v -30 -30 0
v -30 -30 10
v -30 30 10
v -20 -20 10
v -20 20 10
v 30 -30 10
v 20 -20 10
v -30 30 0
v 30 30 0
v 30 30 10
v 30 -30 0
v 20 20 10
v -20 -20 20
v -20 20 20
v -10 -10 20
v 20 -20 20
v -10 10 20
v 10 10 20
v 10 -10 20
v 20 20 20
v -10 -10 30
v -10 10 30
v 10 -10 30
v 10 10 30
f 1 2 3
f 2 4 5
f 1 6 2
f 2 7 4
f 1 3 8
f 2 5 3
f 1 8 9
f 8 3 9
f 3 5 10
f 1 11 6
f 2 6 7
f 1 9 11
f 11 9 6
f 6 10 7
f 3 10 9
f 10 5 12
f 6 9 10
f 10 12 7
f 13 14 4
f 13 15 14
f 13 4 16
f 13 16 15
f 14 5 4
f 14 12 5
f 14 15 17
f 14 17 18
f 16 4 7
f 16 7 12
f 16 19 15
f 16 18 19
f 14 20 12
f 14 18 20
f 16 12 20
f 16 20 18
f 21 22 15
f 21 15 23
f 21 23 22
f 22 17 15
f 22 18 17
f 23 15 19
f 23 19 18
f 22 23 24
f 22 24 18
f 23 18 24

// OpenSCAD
// 1段目（最下段）
translate([0, 0, 5]) {
    cube([60, 60, 10], center = true);
}

// 2段目（中段）
translate([0, 0, 15]) {
    cube([40, 40, 10], center = true);
}

// 3段目（最上段）
translate([0, 0, 25]) {
    cube([20, 20, 10], center = true);
}
